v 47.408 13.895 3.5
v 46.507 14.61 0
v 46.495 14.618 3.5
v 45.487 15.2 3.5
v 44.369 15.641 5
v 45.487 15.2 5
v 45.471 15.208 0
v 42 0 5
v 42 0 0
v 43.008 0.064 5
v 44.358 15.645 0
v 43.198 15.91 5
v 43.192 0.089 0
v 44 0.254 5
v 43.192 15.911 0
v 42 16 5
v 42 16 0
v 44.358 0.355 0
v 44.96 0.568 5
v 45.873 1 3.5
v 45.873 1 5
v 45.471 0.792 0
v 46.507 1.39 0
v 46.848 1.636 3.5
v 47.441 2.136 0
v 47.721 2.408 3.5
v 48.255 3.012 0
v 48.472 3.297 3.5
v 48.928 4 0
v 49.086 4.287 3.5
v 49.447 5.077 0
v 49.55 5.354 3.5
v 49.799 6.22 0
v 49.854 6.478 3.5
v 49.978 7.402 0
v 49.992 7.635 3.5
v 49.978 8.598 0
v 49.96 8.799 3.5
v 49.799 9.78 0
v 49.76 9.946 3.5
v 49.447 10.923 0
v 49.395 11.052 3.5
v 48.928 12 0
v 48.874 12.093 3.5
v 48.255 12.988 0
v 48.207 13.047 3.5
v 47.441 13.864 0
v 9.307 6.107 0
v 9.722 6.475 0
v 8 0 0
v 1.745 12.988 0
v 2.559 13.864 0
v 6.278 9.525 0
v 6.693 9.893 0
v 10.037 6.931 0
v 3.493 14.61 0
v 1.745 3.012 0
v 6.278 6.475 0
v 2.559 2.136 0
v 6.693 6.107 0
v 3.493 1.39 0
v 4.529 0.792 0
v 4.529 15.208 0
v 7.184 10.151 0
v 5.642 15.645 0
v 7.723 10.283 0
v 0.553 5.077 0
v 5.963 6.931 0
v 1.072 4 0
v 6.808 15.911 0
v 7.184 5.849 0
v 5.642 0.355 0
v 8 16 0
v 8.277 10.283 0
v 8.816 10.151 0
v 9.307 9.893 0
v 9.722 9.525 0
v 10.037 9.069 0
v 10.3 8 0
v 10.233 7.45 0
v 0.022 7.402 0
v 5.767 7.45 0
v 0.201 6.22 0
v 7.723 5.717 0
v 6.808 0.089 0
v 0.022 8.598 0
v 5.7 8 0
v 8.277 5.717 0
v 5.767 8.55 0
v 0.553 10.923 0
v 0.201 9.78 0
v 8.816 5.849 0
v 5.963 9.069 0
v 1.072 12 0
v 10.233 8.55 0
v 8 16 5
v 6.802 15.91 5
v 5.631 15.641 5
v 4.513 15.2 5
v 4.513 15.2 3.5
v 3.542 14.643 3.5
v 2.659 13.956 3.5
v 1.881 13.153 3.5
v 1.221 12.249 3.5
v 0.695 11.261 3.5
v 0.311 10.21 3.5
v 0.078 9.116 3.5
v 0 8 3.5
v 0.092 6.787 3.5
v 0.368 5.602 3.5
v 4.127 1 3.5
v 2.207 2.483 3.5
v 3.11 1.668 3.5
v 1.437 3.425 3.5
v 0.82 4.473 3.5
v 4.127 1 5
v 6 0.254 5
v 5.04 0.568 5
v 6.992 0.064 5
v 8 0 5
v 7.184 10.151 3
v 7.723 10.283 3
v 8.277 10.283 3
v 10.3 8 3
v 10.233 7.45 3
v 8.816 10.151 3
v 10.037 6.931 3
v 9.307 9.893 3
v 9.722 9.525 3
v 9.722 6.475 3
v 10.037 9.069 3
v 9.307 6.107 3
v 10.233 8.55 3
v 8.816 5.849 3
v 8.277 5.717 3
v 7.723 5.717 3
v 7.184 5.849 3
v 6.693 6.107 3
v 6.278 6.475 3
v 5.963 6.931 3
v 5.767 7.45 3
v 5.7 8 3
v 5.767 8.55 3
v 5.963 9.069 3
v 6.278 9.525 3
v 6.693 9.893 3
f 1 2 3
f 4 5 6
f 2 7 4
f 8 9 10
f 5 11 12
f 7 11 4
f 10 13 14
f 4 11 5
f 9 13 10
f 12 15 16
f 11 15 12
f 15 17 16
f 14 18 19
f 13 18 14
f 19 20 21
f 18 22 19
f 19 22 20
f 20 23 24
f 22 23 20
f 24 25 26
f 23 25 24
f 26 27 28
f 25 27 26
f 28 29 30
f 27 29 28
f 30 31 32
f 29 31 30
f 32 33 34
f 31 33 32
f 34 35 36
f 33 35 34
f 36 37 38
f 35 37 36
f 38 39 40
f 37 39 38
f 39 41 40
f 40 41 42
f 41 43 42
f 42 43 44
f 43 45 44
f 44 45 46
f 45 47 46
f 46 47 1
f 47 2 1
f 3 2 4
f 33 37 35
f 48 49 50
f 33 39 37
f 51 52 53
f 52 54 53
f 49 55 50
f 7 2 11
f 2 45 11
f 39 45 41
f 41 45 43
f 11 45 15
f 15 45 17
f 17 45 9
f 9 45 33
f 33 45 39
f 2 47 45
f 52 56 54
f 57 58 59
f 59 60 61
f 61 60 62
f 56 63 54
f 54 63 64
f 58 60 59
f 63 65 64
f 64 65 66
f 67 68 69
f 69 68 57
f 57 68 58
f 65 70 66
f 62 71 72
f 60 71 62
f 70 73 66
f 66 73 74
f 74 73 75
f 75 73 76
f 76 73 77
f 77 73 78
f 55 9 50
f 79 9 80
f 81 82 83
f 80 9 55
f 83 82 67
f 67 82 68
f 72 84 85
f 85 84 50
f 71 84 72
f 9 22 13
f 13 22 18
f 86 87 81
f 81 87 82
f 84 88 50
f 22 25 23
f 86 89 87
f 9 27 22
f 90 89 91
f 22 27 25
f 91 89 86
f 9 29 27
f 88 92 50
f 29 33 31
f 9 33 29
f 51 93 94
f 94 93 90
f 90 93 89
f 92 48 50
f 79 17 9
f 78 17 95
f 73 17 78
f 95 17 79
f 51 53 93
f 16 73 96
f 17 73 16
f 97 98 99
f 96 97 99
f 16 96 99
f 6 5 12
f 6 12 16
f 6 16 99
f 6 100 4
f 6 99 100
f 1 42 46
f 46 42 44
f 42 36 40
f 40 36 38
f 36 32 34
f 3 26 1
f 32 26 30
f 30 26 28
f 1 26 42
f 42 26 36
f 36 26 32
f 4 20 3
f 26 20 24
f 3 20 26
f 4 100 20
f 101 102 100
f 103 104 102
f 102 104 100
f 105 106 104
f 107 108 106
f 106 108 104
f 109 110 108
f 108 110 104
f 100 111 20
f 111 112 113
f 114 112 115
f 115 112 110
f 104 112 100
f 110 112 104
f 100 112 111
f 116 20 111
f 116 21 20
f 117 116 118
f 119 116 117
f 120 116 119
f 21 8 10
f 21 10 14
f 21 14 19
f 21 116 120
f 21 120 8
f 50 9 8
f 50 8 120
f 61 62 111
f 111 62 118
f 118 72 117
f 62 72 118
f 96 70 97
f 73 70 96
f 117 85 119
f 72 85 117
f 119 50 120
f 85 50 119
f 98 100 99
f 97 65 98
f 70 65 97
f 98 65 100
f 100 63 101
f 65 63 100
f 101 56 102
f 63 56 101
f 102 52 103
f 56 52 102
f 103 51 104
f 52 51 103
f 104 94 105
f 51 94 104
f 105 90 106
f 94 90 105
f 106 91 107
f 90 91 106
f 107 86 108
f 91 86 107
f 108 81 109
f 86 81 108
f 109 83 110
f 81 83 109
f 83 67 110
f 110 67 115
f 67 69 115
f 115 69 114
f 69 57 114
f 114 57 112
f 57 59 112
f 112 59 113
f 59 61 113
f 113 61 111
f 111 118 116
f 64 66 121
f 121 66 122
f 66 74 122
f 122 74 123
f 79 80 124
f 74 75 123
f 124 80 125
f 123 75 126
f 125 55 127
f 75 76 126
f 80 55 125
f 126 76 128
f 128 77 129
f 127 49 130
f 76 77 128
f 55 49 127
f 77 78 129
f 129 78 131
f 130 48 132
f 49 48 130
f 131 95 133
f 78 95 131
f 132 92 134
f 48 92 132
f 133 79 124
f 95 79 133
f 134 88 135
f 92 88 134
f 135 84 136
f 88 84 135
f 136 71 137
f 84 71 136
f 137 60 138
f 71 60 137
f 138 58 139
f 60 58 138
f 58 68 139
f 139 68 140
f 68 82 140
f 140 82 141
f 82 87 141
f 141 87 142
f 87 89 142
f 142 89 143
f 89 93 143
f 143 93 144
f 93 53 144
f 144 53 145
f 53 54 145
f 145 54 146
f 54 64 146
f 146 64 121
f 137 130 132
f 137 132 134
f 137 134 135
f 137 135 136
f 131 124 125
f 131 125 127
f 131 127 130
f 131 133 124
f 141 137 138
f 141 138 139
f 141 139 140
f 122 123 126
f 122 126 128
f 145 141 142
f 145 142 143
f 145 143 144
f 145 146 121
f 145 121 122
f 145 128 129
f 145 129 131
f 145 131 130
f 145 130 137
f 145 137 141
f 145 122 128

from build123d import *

# Parameters (mm, degrees)
PAD_DEPTH       = 5
SKETCH001_W     = 80
SKETCH001_H     = 14.2
POCKET_DEPTH    = 1.5
SKETCH002_R     = 2.3
POCKET001_DEPTH = 3


with BuildPart() as part:
    # Sketch → Pad (new body)
    with BuildSketch(Plane.XY):
        with BuildLine():
            ThreePointArc((8, 16), (0, 8), (8, 0))
            Line((42, 0), (8, 0))
            ThreePointArc((42, 0), (50, 8), (42, 16))
            Line((8, 16), (42, 16))
        make_face()
    extrude(amount=PAD_DEPTH)

    # Sketch001 (on Face6 of Pad) → Pocket (cut)
    with BuildSketch(Plane.XY.offset(5)):
        with Locations((40, 8.1)):
            Rectangle(SKETCH001_W, SKETCH001_H)
    extrude(amount=-POCKET_DEPTH, mode=Mode.SUBTRACT)

    # Sketch002 (on Face2 of Pocket) → Pocket001 (cut)
    with BuildSketch(Plane(origin=(0, 0, 0), x_dir=(1, 0, 0), z_dir=(0, 0, -1))):
        with Locations((8, -8)):
            Circle(SKETCH002_R)
    extrude(amount=-POCKET001_DEPTH, mode=Mode.SUBTRACT)


solid = part.part
